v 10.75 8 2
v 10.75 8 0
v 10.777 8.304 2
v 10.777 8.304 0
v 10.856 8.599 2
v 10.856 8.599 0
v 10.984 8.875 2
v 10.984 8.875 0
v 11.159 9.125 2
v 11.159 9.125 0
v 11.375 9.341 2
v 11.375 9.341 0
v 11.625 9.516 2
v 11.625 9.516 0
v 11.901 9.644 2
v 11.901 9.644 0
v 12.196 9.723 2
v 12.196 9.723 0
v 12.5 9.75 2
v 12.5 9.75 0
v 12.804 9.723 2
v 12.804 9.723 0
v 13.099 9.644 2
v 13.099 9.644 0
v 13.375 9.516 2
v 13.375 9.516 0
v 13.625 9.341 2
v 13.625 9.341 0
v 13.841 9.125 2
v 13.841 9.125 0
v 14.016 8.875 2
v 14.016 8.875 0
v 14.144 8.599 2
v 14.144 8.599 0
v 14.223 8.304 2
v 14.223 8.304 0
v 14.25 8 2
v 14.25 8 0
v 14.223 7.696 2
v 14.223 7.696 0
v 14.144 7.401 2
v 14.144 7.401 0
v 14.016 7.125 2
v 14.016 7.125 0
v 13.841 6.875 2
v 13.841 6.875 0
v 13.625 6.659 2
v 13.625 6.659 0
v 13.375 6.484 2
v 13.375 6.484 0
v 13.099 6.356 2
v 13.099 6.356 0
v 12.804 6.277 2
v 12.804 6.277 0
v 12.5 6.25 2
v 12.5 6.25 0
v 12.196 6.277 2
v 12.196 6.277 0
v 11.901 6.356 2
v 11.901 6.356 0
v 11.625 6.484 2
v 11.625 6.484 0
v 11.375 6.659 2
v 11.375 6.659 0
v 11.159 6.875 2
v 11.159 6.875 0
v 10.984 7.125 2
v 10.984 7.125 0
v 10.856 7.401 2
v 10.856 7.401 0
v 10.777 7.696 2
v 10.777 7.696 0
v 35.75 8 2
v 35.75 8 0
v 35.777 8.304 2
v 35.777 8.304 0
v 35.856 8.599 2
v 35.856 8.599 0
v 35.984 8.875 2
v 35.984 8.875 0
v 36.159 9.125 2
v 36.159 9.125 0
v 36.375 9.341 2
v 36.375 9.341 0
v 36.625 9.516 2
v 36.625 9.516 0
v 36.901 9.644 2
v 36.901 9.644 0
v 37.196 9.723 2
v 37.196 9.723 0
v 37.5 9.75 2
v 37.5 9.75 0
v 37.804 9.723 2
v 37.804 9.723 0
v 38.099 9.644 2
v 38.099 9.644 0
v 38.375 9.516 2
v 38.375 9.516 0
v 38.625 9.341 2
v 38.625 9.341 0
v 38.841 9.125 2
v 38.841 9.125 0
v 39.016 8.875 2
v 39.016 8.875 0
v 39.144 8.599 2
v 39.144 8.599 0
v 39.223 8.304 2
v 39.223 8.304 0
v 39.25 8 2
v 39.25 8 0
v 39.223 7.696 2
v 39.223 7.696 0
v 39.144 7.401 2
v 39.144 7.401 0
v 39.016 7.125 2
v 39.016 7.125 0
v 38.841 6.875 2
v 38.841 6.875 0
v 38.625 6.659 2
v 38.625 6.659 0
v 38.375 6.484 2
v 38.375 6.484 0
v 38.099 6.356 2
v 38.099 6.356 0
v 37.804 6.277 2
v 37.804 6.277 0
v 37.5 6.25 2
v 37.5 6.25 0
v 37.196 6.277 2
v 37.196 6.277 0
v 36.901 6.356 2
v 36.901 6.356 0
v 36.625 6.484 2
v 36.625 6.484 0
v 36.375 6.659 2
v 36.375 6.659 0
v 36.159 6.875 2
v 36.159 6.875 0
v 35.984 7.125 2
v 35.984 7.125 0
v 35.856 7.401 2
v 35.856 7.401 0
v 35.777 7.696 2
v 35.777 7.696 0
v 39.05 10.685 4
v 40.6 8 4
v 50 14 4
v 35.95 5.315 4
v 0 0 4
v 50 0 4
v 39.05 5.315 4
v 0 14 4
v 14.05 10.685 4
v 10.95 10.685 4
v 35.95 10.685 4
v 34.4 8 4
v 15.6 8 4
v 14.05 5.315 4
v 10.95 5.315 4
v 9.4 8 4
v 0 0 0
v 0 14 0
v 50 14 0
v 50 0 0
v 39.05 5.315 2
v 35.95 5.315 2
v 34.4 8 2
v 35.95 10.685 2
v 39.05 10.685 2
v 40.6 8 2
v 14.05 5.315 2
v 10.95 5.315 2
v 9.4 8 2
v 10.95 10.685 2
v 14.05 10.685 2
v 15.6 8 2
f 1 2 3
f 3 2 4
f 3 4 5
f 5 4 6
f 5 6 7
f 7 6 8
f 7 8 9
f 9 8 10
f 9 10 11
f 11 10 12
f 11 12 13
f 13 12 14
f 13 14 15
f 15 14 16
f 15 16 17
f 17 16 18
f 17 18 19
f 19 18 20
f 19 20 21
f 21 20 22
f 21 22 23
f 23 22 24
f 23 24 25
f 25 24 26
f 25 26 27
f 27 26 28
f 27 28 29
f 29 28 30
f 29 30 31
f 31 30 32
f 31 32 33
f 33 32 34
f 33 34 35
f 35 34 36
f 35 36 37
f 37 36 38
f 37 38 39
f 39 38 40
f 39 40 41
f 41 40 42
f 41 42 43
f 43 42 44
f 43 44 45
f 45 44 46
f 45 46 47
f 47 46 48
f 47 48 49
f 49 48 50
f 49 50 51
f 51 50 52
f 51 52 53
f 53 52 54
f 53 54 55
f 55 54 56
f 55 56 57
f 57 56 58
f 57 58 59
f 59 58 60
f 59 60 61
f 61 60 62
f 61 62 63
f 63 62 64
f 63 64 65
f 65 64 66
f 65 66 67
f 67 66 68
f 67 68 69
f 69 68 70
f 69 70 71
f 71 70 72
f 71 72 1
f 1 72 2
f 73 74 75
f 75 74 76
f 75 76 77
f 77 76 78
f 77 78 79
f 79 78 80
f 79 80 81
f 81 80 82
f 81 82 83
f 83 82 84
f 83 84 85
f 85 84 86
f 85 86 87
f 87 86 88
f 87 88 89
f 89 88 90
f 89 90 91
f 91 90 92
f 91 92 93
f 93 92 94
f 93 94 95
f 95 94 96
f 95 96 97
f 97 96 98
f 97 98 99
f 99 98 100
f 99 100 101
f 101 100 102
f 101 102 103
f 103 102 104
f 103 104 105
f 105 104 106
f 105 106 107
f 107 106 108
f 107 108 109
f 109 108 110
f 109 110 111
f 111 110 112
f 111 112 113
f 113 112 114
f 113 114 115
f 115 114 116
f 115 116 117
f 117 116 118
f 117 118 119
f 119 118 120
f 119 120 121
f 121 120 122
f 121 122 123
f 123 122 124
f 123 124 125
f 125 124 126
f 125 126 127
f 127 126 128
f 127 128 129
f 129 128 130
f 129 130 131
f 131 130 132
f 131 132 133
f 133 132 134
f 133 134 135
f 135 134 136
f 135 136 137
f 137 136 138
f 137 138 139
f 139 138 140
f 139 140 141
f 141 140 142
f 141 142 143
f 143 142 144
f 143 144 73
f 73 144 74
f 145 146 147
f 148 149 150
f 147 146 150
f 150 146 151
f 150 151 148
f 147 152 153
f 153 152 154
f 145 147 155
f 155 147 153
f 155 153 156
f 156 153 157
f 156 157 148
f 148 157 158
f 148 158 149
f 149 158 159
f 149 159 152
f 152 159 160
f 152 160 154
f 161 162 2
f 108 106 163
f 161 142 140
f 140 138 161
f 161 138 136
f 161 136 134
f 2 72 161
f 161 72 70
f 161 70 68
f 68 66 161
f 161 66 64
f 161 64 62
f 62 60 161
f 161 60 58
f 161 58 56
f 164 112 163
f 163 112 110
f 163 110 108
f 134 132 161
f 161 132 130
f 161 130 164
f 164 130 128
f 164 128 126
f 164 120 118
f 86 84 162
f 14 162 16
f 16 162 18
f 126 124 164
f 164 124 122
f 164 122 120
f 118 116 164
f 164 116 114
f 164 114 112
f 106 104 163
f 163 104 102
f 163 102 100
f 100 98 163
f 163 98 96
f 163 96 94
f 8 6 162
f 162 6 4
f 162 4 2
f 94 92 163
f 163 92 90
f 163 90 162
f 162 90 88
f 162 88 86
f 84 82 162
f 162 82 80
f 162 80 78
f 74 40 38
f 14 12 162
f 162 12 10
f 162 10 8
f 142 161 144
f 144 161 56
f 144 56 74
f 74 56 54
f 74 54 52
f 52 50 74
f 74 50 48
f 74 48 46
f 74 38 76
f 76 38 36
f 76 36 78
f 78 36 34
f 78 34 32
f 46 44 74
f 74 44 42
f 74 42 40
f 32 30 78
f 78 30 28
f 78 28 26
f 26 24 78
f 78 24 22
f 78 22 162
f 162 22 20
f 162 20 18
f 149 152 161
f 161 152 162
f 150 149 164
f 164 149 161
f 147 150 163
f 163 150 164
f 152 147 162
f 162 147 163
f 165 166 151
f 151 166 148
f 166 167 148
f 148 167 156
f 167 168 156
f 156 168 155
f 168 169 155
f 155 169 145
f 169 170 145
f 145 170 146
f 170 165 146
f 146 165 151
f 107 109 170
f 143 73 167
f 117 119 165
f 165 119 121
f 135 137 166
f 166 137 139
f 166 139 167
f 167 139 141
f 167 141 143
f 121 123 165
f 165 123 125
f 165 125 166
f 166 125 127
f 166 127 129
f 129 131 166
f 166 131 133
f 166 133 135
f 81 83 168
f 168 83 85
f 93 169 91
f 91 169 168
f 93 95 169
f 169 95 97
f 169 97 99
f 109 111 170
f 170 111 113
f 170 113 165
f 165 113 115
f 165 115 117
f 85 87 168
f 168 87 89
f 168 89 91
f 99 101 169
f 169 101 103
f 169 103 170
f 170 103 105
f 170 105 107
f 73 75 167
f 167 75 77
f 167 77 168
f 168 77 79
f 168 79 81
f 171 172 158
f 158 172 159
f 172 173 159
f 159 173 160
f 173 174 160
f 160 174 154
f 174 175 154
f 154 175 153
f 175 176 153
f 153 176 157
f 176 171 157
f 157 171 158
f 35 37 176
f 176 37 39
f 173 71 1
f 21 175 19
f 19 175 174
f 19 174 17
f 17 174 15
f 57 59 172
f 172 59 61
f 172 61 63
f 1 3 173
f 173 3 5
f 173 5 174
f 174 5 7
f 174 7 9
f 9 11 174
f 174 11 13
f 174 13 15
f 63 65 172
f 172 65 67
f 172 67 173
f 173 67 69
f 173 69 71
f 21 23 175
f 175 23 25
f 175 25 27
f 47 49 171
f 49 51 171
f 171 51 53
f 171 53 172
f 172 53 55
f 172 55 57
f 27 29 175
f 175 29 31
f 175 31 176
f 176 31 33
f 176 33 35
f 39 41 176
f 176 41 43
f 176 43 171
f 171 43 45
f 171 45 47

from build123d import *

# Parameters (mm, degrees)
SKETCH1_W                 = 50
SKETCH1_H                 = 14
SKETCH1_R                 = 1.75
BOSS_EXTRUDE1_DEPTH       = 4
NUTHOLECUT_EXTRUDE1_DEPTH = 2


with BuildPart() as part:
    # Sketch1 → Boss-Extrude1 (new body)
    with BuildSketch(Plane.XY):
        with Locations((25, 7)):
            Rectangle(SKETCH1_W, SKETCH1_H)
        with Locations((12.5, 8)):
            Circle(SKETCH1_R, mode=Mode.SUBTRACT)
        with Locations((37.5, 8)):
            Circle(SKETCH1_R, mode=Mode.SUBTRACT)
    extrude(amount=BOSS_EXTRUDE1_DEPTH)

    # NutHoleSketch7 → NutHoleCut-Extrude1 (cut)
    with BuildSketch(Plane.XY.offset(4)):
        Polygon((14.05, 5.315321248), (15.6, 8), (14.05, 10.684678752), (10.95, 10.684678752), (9.4, 8), (10.95, 5.315321248), align=None)
        Polygon((39.05, 5.315321248), (40.6, 8), (39.05, 10.684678752), (35.95, 10.684678752), (34.4, 8), (35.95, 5.315321248), align=None)
    extrude(amount=-NUTHOLECUT_EXTRUDE1_DEPTH, mode=Mode.SUBTRACT)


solid = part.part
